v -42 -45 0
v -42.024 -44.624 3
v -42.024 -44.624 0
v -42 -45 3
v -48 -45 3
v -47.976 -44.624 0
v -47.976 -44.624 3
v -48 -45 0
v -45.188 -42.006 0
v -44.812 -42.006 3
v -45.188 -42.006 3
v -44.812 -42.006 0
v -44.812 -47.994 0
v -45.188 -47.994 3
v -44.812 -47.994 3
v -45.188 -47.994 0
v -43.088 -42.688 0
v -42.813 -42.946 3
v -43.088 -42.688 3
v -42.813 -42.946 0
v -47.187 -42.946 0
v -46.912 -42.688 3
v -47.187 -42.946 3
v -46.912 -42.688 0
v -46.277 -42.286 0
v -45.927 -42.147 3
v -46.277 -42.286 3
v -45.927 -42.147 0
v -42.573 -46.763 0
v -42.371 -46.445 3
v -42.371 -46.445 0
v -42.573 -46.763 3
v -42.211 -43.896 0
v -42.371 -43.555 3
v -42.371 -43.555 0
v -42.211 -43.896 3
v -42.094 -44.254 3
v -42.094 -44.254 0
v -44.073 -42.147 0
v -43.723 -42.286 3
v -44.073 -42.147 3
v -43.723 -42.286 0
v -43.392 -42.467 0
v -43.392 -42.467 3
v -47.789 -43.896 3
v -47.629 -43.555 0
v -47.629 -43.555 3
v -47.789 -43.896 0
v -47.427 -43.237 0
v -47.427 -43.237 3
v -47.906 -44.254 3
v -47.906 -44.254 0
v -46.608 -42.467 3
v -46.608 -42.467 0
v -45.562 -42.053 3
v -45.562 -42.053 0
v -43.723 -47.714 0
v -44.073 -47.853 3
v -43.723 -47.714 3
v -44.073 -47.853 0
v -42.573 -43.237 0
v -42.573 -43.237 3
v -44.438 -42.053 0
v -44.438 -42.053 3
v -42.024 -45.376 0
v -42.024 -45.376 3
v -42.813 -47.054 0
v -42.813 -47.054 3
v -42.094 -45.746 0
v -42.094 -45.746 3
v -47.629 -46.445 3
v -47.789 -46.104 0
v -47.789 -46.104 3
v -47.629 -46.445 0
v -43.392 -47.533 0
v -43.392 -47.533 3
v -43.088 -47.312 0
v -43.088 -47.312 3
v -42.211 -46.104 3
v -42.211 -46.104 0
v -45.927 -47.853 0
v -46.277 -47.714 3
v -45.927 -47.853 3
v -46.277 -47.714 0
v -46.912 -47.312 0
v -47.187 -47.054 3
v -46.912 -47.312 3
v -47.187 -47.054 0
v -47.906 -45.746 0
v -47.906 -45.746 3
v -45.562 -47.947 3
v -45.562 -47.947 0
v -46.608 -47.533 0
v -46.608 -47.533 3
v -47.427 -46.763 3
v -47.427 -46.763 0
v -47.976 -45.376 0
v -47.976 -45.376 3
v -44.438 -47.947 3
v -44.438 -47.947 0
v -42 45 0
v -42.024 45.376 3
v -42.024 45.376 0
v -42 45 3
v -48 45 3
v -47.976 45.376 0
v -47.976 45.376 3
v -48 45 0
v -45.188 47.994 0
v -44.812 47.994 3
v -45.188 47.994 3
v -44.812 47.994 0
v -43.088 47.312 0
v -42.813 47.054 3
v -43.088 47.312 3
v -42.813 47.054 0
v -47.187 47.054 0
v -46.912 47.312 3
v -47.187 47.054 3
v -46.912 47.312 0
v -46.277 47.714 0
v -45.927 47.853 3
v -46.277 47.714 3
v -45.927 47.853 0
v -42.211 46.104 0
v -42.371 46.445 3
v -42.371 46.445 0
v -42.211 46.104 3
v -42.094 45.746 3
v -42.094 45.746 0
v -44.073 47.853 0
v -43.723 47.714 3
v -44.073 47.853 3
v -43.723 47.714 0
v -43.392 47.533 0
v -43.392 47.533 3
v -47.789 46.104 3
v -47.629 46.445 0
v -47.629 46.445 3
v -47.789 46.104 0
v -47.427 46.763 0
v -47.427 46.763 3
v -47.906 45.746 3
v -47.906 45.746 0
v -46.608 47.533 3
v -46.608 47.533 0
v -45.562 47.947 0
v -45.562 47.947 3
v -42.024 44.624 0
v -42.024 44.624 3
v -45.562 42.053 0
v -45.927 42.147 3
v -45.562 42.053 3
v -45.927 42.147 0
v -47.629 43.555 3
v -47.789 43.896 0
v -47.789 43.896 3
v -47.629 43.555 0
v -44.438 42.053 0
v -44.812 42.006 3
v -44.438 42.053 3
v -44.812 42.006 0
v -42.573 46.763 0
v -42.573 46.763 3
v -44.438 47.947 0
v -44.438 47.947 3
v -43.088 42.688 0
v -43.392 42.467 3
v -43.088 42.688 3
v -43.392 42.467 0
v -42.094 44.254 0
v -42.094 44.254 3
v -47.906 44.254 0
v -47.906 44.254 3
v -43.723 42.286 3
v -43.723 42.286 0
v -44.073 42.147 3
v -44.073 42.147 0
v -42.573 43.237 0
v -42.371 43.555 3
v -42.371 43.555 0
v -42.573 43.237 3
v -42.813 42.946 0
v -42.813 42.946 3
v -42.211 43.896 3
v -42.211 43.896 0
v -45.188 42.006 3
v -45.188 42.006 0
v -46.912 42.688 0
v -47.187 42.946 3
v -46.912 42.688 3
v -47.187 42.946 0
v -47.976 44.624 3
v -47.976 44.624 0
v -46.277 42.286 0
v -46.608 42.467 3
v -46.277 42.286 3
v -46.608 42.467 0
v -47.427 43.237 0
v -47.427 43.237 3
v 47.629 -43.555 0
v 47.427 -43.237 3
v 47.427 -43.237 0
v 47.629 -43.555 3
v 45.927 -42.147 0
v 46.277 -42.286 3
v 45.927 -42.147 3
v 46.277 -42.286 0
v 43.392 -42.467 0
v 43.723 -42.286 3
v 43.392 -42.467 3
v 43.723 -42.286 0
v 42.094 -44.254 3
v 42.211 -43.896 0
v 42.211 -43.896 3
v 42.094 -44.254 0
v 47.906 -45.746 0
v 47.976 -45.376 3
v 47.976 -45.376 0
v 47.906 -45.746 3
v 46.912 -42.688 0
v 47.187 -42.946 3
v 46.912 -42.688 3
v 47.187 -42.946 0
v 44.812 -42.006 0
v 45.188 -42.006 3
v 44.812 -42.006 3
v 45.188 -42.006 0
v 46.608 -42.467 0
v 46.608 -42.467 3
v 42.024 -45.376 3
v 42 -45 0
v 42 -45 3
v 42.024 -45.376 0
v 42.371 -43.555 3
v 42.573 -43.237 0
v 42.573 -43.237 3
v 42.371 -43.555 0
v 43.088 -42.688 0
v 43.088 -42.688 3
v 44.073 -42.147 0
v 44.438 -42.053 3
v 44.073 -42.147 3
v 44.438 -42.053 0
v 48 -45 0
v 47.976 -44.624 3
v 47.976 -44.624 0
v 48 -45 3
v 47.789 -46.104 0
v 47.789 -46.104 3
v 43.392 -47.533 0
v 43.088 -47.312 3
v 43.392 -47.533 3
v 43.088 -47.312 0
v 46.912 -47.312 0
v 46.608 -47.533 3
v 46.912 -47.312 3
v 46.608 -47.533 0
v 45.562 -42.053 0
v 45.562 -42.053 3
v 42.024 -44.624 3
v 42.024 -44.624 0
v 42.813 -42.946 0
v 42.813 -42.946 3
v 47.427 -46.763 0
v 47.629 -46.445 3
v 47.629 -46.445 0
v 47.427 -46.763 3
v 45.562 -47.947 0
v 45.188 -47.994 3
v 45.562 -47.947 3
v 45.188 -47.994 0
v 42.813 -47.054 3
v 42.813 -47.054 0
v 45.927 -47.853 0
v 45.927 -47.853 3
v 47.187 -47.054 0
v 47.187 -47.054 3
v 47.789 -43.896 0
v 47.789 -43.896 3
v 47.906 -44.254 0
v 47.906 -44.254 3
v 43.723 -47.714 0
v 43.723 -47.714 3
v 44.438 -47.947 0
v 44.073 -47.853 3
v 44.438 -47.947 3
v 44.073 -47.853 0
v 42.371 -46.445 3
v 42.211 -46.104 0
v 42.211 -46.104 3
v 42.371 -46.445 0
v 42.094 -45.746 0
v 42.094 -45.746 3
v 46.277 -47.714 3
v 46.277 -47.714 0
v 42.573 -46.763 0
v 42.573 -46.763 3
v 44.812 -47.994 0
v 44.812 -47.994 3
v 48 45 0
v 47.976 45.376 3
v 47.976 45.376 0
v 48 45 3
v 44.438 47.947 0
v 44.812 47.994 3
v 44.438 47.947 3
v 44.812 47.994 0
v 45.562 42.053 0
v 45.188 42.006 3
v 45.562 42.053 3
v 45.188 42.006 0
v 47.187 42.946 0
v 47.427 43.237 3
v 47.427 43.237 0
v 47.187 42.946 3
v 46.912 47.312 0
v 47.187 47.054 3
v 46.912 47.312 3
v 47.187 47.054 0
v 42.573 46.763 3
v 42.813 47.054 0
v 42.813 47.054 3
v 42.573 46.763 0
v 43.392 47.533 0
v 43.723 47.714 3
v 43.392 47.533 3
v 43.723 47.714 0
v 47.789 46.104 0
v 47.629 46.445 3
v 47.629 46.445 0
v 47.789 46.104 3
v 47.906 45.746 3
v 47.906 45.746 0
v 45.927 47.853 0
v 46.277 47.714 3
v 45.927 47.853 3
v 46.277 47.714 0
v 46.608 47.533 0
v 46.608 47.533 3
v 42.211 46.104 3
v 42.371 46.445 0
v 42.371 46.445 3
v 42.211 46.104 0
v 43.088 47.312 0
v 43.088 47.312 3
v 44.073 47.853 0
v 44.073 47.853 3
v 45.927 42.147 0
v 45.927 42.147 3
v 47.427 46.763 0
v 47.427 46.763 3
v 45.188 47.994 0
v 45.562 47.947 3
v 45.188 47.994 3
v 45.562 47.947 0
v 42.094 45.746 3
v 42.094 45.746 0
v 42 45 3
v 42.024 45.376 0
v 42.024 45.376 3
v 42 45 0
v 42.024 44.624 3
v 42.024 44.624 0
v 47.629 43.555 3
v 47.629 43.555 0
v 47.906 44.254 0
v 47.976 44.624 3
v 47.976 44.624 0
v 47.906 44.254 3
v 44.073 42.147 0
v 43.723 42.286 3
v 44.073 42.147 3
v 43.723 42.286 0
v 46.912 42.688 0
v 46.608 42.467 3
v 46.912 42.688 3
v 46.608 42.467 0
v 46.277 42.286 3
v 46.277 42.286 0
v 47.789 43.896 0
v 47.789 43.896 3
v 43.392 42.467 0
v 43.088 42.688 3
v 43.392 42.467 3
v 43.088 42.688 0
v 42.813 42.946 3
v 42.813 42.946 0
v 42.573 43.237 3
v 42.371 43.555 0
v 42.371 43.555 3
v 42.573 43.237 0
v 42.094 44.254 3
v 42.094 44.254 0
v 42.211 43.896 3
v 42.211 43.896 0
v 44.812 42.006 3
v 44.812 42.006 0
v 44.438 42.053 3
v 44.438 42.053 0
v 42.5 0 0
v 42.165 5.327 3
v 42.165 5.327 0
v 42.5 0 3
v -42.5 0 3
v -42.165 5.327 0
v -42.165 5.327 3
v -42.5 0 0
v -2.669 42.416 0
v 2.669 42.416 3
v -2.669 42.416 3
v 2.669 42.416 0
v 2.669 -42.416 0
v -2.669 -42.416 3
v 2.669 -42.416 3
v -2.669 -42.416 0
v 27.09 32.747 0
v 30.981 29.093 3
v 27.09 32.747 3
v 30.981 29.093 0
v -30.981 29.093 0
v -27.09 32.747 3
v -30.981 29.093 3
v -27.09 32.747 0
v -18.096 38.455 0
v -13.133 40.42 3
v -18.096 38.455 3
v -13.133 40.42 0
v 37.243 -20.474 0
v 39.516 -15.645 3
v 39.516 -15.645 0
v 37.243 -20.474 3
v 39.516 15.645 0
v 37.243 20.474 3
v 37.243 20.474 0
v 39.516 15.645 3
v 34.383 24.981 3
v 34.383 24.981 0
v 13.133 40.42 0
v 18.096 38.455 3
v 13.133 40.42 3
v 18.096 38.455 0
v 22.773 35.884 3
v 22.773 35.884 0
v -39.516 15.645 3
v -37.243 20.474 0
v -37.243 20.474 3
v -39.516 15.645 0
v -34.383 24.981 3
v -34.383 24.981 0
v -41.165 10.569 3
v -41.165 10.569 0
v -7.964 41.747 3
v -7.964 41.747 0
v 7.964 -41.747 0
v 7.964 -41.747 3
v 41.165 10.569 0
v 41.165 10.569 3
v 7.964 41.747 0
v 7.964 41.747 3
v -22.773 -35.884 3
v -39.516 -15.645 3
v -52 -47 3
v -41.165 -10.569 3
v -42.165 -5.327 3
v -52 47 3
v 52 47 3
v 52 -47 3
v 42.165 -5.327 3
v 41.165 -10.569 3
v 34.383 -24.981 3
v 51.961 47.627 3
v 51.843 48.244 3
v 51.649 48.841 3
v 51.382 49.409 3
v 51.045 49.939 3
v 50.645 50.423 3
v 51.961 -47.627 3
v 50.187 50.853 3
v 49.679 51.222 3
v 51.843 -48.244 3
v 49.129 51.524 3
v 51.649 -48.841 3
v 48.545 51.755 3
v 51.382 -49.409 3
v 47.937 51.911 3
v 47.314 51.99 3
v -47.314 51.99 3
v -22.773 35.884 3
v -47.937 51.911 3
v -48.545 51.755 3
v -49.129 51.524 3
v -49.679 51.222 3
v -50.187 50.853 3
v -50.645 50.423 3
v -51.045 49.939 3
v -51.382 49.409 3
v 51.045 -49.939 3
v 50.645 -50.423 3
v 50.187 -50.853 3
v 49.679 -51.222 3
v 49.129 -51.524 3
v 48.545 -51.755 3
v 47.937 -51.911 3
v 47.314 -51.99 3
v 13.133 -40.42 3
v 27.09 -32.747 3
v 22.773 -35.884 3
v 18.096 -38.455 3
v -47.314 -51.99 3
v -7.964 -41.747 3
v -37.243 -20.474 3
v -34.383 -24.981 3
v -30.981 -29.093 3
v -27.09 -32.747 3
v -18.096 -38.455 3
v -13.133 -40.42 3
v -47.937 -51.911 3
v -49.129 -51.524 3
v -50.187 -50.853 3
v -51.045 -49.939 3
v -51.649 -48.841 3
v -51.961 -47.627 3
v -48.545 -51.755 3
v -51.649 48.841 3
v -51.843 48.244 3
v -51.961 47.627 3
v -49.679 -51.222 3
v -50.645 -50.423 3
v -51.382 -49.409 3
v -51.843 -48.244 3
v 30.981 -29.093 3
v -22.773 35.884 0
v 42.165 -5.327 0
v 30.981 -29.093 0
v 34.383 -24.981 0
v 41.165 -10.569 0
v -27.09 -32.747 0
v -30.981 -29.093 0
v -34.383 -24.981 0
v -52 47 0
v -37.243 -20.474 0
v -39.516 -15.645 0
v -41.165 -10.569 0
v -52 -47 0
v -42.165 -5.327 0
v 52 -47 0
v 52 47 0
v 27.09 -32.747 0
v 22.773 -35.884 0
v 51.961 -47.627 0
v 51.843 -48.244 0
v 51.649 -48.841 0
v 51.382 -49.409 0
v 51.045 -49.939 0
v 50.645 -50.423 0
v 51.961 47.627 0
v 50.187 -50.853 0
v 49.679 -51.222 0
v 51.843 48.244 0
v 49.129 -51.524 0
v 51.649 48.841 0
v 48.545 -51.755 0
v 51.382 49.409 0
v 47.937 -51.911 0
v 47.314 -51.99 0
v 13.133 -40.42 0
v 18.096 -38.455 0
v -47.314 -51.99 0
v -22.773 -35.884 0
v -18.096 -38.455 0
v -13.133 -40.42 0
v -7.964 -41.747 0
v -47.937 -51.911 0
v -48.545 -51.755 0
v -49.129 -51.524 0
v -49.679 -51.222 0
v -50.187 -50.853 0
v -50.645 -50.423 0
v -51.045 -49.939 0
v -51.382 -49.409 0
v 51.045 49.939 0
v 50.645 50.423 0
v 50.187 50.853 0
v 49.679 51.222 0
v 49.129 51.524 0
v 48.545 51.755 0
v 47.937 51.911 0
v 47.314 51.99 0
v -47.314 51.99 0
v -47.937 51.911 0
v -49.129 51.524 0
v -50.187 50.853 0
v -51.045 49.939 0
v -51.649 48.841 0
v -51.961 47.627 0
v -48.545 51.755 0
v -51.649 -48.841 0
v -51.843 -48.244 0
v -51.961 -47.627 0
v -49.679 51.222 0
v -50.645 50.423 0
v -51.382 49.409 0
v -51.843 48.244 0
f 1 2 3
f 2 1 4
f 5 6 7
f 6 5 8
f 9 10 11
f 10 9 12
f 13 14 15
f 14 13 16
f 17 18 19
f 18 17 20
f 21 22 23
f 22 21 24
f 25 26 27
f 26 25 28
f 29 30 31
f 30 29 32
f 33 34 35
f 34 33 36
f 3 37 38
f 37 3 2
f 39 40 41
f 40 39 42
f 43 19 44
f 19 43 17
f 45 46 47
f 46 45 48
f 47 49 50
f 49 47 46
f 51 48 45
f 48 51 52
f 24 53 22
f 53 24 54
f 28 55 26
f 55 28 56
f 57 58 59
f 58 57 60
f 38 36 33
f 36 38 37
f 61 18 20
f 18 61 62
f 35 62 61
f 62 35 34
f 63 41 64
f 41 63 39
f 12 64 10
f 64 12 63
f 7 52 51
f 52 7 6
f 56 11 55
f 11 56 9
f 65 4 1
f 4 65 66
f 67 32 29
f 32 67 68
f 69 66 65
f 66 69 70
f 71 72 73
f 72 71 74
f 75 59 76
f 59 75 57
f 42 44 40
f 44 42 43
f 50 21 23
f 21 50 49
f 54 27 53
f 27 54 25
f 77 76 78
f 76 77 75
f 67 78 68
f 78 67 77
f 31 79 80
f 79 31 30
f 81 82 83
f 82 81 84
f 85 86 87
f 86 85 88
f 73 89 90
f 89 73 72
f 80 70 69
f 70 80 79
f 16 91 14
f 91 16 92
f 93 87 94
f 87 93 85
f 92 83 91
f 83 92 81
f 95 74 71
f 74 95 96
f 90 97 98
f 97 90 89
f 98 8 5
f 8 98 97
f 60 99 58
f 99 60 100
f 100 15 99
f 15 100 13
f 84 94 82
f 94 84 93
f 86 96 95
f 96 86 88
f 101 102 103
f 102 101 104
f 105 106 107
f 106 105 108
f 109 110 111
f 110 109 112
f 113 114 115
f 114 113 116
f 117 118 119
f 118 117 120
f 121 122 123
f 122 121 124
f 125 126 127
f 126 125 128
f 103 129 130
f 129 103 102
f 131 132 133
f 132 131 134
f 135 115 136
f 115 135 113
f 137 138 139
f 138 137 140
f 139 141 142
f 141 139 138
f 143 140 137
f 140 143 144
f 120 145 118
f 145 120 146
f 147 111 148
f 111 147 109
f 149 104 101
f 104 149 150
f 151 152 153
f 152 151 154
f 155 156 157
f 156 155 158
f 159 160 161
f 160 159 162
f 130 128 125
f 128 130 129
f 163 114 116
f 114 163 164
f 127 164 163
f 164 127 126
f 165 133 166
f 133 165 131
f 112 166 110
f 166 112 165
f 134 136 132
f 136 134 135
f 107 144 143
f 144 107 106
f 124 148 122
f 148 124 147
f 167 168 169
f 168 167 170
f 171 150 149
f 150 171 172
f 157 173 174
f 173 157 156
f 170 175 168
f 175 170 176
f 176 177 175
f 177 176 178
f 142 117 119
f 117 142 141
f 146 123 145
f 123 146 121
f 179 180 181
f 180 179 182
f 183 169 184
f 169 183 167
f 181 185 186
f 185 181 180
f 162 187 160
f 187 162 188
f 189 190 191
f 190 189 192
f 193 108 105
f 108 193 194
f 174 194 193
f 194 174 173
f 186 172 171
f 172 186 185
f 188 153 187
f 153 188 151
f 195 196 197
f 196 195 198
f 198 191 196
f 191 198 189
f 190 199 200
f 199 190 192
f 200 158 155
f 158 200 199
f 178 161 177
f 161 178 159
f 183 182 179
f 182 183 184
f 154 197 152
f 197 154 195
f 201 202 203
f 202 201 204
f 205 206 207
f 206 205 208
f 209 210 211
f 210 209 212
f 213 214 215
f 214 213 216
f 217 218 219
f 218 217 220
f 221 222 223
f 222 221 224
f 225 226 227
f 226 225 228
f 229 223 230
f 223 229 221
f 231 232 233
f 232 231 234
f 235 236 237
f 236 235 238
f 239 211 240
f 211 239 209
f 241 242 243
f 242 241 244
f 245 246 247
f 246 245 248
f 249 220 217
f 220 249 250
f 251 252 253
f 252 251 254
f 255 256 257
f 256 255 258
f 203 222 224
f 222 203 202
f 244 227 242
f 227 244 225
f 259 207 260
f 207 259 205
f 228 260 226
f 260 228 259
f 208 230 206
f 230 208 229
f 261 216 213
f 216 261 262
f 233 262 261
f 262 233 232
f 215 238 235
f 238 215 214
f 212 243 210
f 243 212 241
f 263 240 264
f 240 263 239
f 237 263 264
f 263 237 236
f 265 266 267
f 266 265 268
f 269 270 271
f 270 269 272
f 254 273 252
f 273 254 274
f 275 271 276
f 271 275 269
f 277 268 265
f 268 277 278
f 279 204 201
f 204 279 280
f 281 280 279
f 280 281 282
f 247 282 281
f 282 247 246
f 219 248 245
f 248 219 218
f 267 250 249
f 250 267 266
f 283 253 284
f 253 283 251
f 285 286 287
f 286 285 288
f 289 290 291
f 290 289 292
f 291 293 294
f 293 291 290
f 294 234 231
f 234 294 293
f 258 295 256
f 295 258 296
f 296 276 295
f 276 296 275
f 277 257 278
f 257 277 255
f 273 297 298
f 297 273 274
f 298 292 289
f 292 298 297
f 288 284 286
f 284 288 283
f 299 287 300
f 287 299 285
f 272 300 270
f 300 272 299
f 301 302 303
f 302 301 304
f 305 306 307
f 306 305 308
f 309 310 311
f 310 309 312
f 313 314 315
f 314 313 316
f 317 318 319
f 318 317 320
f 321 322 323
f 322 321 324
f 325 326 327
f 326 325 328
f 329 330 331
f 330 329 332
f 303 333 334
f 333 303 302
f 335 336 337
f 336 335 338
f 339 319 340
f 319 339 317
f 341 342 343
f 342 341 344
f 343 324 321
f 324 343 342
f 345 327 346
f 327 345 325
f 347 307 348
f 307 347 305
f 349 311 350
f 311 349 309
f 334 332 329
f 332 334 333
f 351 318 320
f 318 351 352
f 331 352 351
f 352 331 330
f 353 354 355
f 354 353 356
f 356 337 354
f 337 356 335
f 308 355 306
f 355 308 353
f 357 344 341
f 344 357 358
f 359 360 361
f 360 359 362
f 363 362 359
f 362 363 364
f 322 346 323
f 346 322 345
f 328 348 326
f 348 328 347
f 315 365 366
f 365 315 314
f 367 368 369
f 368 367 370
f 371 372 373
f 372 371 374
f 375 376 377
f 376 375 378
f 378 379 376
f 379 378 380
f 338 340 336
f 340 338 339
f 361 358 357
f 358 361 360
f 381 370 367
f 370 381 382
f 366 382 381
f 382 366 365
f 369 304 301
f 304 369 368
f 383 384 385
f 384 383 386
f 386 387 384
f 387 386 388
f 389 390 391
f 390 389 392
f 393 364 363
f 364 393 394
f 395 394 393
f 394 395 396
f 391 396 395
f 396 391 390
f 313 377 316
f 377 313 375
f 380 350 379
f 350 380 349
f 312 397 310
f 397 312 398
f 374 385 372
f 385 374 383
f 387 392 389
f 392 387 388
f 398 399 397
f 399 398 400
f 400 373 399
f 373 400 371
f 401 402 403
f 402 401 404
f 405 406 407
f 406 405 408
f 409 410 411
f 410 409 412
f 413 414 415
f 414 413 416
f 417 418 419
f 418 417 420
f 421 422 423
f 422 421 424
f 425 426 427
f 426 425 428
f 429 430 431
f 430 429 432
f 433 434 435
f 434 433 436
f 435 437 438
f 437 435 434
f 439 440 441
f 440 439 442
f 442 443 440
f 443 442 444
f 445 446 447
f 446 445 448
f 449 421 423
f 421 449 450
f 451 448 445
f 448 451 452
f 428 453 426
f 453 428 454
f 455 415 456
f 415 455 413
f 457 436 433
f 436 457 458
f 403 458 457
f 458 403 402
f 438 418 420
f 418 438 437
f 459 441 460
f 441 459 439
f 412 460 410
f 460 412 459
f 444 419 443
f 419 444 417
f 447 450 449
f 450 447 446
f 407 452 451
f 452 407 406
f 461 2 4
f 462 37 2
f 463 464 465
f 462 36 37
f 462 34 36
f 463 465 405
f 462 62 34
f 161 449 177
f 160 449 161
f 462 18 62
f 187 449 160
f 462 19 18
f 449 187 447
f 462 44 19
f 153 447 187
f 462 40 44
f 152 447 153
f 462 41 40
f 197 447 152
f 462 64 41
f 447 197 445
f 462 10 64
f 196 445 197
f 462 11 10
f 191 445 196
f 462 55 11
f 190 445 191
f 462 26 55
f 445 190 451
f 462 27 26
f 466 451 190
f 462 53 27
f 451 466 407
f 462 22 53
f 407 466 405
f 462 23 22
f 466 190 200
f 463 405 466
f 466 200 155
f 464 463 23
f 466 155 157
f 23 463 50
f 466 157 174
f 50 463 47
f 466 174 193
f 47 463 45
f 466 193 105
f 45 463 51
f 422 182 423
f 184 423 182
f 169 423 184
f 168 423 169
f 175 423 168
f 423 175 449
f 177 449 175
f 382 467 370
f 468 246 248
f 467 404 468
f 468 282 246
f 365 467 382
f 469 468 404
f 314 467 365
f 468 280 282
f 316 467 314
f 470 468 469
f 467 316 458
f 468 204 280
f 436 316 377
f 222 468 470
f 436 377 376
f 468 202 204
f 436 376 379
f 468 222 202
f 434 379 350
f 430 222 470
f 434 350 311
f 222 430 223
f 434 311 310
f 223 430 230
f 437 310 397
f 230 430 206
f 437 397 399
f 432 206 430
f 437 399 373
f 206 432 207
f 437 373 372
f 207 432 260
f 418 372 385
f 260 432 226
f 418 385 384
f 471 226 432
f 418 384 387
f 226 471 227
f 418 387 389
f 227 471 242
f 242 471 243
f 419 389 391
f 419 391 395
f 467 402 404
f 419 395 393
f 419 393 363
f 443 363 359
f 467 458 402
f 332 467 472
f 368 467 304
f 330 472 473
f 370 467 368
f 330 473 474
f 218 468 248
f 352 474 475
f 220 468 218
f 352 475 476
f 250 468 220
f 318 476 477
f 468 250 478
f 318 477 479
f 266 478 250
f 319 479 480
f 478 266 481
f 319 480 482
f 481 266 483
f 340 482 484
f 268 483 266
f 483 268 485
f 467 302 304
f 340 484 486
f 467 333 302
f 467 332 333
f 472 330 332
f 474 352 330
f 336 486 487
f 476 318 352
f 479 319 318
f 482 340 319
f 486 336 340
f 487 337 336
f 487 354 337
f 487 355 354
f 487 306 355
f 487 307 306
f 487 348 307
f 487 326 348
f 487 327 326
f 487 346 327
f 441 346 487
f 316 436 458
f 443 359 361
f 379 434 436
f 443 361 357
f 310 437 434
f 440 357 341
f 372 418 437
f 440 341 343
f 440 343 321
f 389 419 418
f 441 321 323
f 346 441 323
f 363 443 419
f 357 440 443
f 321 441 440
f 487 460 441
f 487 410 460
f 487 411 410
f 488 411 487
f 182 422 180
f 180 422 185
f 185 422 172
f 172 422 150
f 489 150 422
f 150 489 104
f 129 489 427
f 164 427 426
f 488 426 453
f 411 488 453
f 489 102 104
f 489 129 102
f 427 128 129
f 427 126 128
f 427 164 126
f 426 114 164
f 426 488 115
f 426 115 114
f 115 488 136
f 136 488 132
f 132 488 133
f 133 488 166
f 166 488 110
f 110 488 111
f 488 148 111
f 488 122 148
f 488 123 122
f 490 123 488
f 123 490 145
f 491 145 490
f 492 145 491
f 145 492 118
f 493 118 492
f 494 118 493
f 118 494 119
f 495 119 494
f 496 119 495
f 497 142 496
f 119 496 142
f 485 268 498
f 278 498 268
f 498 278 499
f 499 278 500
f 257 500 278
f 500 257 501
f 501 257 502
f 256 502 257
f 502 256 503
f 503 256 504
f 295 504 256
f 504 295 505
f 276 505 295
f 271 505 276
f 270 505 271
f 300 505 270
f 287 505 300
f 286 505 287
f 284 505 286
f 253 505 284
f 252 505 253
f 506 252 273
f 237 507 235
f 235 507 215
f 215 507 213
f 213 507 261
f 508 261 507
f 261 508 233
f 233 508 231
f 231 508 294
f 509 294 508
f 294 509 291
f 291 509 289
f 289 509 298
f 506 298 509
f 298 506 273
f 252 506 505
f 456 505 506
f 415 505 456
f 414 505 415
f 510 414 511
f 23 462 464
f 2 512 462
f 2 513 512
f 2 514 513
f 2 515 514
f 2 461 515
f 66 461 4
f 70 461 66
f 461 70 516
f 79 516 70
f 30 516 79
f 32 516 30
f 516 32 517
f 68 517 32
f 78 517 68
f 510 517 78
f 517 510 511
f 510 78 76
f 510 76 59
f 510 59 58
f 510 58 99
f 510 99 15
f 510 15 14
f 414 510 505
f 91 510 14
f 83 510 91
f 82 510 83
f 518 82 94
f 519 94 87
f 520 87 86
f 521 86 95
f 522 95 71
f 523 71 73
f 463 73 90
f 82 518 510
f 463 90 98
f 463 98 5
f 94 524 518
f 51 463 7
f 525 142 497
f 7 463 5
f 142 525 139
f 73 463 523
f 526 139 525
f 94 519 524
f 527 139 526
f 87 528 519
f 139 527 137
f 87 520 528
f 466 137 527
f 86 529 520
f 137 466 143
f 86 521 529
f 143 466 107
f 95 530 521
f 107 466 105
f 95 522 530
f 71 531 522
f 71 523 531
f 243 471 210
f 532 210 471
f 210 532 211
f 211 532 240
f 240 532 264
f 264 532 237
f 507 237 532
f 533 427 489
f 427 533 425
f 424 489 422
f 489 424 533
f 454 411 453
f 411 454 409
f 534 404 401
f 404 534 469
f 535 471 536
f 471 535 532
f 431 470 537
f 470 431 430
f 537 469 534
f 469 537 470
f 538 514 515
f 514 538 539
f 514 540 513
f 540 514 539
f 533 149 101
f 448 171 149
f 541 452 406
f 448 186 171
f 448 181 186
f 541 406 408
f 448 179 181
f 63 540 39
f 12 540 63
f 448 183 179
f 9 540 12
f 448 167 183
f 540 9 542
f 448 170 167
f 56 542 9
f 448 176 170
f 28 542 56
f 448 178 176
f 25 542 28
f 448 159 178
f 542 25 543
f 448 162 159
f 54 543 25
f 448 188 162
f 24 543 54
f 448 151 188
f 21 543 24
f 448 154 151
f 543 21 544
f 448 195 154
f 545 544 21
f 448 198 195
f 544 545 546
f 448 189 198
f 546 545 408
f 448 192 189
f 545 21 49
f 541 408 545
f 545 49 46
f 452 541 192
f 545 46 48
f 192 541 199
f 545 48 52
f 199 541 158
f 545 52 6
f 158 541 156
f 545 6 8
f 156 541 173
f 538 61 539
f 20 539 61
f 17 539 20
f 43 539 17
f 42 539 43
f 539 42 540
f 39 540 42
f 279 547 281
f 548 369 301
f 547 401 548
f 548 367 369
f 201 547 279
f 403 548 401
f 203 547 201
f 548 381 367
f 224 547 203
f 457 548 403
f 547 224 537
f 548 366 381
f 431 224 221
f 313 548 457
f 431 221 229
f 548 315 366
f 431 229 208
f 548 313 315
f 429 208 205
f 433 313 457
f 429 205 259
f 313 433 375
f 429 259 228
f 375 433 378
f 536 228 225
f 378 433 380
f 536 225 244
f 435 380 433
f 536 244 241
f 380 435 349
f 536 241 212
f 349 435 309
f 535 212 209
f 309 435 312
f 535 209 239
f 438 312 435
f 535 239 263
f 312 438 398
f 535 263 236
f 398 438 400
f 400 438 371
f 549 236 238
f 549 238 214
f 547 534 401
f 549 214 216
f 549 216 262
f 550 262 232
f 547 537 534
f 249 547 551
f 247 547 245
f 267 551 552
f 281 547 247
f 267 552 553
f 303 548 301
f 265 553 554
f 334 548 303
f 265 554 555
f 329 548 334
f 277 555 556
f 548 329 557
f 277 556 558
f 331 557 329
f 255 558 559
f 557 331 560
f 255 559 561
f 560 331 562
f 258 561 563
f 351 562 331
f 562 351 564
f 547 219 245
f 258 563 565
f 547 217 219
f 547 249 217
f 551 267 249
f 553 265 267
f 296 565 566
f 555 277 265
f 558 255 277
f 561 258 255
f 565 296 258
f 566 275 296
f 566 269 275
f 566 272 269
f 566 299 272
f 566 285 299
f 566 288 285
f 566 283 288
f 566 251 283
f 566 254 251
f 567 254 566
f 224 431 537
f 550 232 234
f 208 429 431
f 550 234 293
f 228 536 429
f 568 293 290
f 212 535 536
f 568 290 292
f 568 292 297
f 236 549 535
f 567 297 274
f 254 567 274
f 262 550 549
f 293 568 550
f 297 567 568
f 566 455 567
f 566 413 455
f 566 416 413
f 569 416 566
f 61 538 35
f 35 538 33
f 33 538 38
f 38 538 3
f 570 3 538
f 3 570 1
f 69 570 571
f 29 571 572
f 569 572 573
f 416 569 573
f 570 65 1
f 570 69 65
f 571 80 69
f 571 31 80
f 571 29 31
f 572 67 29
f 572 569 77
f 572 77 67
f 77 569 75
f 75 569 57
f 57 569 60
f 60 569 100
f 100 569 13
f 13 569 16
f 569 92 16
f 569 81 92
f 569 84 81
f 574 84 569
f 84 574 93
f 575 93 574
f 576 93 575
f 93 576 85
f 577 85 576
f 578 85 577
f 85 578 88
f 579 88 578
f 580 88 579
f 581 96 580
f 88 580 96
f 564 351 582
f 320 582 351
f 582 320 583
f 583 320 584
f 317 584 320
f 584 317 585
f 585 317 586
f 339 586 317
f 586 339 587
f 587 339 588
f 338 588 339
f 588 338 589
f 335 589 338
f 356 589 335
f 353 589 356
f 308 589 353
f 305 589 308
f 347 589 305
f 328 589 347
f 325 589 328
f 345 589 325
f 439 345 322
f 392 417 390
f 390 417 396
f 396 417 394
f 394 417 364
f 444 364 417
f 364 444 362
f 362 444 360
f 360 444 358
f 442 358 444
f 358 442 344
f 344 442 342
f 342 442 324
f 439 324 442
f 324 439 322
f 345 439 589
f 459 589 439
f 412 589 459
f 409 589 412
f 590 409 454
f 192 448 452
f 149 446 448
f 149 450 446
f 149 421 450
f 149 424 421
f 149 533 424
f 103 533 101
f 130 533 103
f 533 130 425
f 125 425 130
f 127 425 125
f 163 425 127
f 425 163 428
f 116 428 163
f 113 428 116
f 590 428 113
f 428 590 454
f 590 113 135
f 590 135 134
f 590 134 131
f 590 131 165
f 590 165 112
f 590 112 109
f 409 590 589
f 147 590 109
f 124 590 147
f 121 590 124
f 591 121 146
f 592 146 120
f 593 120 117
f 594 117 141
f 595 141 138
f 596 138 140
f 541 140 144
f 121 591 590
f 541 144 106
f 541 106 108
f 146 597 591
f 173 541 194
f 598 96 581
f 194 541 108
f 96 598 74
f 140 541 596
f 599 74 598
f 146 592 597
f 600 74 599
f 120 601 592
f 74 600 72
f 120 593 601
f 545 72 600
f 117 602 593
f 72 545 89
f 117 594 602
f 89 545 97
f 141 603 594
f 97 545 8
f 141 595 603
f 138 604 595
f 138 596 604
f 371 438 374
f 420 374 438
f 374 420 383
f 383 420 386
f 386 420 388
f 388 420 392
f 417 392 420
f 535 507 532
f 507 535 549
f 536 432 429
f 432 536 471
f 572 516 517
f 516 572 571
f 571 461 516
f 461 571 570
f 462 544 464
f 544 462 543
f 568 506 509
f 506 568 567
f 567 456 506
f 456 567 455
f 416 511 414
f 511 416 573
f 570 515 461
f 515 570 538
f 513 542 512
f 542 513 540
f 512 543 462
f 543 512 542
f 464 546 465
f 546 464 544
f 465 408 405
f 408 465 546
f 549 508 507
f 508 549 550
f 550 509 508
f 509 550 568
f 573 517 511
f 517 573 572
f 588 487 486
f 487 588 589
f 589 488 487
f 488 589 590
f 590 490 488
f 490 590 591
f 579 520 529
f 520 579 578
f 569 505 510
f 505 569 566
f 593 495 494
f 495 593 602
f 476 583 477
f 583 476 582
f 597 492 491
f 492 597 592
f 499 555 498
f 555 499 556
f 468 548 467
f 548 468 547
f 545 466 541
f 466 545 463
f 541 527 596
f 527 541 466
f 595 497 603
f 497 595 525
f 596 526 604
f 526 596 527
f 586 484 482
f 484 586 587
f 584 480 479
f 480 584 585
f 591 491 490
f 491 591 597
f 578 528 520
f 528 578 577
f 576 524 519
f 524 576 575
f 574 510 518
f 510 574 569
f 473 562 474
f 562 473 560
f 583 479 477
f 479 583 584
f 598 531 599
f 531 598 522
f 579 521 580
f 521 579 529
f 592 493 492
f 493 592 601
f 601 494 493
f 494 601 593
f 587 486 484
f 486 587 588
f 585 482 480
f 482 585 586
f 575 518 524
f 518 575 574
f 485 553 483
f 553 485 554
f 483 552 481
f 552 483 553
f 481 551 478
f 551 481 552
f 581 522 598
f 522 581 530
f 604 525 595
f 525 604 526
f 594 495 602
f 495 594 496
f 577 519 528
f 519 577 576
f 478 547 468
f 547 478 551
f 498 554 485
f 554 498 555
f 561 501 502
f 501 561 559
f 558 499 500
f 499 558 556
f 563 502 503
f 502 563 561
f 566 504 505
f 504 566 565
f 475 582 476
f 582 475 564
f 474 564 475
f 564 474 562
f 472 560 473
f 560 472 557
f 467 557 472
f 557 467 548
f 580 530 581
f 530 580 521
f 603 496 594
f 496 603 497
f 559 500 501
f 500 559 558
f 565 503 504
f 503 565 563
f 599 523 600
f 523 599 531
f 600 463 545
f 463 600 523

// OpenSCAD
$fn = 50;


difference() {
	union() {
		hull() {
			translate(v = [-47.0000000000, 47.0000000000, 0]) {
				cylinder(h = 3, r = 5);
			}
			translate(v = [47.0000000000, 47.0000000000, 0]) {
				cylinder(h = 3, r = 5);
			}
			translate(v = [-47.0000000000, -47.0000000000, 0]) {
				cylinder(h = 3, r = 5);
			}
			translate(v = [47.0000000000, -47.0000000000, 0]) {
				cylinder(h = 3, r = 5);
			}
		}
	}
	union() {
		#translate(v = [-45.0000000000, -45.0000000000, -100.0000000000]) {
			cylinder(h = 200, r = 3.0000000000);
		}
		#translate(v = [-45.0000000000, 45.0000000000, -100.0000000000]) {
			cylinder(h = 200, r = 3.0000000000);
		}
		#translate(v = [45.0000000000, -45.0000000000, -100.0000000000]) {
			cylinder(h = 200, r = 3.0000000000);
		}
		#translate(v = [45.0000000000, 45.0000000000, -100.0000000000]) {
			cylinder(h = 200, r = 3.0000000000);
		}
		#cylinder(h = 3, r = 42.5000000000);
	}
}
